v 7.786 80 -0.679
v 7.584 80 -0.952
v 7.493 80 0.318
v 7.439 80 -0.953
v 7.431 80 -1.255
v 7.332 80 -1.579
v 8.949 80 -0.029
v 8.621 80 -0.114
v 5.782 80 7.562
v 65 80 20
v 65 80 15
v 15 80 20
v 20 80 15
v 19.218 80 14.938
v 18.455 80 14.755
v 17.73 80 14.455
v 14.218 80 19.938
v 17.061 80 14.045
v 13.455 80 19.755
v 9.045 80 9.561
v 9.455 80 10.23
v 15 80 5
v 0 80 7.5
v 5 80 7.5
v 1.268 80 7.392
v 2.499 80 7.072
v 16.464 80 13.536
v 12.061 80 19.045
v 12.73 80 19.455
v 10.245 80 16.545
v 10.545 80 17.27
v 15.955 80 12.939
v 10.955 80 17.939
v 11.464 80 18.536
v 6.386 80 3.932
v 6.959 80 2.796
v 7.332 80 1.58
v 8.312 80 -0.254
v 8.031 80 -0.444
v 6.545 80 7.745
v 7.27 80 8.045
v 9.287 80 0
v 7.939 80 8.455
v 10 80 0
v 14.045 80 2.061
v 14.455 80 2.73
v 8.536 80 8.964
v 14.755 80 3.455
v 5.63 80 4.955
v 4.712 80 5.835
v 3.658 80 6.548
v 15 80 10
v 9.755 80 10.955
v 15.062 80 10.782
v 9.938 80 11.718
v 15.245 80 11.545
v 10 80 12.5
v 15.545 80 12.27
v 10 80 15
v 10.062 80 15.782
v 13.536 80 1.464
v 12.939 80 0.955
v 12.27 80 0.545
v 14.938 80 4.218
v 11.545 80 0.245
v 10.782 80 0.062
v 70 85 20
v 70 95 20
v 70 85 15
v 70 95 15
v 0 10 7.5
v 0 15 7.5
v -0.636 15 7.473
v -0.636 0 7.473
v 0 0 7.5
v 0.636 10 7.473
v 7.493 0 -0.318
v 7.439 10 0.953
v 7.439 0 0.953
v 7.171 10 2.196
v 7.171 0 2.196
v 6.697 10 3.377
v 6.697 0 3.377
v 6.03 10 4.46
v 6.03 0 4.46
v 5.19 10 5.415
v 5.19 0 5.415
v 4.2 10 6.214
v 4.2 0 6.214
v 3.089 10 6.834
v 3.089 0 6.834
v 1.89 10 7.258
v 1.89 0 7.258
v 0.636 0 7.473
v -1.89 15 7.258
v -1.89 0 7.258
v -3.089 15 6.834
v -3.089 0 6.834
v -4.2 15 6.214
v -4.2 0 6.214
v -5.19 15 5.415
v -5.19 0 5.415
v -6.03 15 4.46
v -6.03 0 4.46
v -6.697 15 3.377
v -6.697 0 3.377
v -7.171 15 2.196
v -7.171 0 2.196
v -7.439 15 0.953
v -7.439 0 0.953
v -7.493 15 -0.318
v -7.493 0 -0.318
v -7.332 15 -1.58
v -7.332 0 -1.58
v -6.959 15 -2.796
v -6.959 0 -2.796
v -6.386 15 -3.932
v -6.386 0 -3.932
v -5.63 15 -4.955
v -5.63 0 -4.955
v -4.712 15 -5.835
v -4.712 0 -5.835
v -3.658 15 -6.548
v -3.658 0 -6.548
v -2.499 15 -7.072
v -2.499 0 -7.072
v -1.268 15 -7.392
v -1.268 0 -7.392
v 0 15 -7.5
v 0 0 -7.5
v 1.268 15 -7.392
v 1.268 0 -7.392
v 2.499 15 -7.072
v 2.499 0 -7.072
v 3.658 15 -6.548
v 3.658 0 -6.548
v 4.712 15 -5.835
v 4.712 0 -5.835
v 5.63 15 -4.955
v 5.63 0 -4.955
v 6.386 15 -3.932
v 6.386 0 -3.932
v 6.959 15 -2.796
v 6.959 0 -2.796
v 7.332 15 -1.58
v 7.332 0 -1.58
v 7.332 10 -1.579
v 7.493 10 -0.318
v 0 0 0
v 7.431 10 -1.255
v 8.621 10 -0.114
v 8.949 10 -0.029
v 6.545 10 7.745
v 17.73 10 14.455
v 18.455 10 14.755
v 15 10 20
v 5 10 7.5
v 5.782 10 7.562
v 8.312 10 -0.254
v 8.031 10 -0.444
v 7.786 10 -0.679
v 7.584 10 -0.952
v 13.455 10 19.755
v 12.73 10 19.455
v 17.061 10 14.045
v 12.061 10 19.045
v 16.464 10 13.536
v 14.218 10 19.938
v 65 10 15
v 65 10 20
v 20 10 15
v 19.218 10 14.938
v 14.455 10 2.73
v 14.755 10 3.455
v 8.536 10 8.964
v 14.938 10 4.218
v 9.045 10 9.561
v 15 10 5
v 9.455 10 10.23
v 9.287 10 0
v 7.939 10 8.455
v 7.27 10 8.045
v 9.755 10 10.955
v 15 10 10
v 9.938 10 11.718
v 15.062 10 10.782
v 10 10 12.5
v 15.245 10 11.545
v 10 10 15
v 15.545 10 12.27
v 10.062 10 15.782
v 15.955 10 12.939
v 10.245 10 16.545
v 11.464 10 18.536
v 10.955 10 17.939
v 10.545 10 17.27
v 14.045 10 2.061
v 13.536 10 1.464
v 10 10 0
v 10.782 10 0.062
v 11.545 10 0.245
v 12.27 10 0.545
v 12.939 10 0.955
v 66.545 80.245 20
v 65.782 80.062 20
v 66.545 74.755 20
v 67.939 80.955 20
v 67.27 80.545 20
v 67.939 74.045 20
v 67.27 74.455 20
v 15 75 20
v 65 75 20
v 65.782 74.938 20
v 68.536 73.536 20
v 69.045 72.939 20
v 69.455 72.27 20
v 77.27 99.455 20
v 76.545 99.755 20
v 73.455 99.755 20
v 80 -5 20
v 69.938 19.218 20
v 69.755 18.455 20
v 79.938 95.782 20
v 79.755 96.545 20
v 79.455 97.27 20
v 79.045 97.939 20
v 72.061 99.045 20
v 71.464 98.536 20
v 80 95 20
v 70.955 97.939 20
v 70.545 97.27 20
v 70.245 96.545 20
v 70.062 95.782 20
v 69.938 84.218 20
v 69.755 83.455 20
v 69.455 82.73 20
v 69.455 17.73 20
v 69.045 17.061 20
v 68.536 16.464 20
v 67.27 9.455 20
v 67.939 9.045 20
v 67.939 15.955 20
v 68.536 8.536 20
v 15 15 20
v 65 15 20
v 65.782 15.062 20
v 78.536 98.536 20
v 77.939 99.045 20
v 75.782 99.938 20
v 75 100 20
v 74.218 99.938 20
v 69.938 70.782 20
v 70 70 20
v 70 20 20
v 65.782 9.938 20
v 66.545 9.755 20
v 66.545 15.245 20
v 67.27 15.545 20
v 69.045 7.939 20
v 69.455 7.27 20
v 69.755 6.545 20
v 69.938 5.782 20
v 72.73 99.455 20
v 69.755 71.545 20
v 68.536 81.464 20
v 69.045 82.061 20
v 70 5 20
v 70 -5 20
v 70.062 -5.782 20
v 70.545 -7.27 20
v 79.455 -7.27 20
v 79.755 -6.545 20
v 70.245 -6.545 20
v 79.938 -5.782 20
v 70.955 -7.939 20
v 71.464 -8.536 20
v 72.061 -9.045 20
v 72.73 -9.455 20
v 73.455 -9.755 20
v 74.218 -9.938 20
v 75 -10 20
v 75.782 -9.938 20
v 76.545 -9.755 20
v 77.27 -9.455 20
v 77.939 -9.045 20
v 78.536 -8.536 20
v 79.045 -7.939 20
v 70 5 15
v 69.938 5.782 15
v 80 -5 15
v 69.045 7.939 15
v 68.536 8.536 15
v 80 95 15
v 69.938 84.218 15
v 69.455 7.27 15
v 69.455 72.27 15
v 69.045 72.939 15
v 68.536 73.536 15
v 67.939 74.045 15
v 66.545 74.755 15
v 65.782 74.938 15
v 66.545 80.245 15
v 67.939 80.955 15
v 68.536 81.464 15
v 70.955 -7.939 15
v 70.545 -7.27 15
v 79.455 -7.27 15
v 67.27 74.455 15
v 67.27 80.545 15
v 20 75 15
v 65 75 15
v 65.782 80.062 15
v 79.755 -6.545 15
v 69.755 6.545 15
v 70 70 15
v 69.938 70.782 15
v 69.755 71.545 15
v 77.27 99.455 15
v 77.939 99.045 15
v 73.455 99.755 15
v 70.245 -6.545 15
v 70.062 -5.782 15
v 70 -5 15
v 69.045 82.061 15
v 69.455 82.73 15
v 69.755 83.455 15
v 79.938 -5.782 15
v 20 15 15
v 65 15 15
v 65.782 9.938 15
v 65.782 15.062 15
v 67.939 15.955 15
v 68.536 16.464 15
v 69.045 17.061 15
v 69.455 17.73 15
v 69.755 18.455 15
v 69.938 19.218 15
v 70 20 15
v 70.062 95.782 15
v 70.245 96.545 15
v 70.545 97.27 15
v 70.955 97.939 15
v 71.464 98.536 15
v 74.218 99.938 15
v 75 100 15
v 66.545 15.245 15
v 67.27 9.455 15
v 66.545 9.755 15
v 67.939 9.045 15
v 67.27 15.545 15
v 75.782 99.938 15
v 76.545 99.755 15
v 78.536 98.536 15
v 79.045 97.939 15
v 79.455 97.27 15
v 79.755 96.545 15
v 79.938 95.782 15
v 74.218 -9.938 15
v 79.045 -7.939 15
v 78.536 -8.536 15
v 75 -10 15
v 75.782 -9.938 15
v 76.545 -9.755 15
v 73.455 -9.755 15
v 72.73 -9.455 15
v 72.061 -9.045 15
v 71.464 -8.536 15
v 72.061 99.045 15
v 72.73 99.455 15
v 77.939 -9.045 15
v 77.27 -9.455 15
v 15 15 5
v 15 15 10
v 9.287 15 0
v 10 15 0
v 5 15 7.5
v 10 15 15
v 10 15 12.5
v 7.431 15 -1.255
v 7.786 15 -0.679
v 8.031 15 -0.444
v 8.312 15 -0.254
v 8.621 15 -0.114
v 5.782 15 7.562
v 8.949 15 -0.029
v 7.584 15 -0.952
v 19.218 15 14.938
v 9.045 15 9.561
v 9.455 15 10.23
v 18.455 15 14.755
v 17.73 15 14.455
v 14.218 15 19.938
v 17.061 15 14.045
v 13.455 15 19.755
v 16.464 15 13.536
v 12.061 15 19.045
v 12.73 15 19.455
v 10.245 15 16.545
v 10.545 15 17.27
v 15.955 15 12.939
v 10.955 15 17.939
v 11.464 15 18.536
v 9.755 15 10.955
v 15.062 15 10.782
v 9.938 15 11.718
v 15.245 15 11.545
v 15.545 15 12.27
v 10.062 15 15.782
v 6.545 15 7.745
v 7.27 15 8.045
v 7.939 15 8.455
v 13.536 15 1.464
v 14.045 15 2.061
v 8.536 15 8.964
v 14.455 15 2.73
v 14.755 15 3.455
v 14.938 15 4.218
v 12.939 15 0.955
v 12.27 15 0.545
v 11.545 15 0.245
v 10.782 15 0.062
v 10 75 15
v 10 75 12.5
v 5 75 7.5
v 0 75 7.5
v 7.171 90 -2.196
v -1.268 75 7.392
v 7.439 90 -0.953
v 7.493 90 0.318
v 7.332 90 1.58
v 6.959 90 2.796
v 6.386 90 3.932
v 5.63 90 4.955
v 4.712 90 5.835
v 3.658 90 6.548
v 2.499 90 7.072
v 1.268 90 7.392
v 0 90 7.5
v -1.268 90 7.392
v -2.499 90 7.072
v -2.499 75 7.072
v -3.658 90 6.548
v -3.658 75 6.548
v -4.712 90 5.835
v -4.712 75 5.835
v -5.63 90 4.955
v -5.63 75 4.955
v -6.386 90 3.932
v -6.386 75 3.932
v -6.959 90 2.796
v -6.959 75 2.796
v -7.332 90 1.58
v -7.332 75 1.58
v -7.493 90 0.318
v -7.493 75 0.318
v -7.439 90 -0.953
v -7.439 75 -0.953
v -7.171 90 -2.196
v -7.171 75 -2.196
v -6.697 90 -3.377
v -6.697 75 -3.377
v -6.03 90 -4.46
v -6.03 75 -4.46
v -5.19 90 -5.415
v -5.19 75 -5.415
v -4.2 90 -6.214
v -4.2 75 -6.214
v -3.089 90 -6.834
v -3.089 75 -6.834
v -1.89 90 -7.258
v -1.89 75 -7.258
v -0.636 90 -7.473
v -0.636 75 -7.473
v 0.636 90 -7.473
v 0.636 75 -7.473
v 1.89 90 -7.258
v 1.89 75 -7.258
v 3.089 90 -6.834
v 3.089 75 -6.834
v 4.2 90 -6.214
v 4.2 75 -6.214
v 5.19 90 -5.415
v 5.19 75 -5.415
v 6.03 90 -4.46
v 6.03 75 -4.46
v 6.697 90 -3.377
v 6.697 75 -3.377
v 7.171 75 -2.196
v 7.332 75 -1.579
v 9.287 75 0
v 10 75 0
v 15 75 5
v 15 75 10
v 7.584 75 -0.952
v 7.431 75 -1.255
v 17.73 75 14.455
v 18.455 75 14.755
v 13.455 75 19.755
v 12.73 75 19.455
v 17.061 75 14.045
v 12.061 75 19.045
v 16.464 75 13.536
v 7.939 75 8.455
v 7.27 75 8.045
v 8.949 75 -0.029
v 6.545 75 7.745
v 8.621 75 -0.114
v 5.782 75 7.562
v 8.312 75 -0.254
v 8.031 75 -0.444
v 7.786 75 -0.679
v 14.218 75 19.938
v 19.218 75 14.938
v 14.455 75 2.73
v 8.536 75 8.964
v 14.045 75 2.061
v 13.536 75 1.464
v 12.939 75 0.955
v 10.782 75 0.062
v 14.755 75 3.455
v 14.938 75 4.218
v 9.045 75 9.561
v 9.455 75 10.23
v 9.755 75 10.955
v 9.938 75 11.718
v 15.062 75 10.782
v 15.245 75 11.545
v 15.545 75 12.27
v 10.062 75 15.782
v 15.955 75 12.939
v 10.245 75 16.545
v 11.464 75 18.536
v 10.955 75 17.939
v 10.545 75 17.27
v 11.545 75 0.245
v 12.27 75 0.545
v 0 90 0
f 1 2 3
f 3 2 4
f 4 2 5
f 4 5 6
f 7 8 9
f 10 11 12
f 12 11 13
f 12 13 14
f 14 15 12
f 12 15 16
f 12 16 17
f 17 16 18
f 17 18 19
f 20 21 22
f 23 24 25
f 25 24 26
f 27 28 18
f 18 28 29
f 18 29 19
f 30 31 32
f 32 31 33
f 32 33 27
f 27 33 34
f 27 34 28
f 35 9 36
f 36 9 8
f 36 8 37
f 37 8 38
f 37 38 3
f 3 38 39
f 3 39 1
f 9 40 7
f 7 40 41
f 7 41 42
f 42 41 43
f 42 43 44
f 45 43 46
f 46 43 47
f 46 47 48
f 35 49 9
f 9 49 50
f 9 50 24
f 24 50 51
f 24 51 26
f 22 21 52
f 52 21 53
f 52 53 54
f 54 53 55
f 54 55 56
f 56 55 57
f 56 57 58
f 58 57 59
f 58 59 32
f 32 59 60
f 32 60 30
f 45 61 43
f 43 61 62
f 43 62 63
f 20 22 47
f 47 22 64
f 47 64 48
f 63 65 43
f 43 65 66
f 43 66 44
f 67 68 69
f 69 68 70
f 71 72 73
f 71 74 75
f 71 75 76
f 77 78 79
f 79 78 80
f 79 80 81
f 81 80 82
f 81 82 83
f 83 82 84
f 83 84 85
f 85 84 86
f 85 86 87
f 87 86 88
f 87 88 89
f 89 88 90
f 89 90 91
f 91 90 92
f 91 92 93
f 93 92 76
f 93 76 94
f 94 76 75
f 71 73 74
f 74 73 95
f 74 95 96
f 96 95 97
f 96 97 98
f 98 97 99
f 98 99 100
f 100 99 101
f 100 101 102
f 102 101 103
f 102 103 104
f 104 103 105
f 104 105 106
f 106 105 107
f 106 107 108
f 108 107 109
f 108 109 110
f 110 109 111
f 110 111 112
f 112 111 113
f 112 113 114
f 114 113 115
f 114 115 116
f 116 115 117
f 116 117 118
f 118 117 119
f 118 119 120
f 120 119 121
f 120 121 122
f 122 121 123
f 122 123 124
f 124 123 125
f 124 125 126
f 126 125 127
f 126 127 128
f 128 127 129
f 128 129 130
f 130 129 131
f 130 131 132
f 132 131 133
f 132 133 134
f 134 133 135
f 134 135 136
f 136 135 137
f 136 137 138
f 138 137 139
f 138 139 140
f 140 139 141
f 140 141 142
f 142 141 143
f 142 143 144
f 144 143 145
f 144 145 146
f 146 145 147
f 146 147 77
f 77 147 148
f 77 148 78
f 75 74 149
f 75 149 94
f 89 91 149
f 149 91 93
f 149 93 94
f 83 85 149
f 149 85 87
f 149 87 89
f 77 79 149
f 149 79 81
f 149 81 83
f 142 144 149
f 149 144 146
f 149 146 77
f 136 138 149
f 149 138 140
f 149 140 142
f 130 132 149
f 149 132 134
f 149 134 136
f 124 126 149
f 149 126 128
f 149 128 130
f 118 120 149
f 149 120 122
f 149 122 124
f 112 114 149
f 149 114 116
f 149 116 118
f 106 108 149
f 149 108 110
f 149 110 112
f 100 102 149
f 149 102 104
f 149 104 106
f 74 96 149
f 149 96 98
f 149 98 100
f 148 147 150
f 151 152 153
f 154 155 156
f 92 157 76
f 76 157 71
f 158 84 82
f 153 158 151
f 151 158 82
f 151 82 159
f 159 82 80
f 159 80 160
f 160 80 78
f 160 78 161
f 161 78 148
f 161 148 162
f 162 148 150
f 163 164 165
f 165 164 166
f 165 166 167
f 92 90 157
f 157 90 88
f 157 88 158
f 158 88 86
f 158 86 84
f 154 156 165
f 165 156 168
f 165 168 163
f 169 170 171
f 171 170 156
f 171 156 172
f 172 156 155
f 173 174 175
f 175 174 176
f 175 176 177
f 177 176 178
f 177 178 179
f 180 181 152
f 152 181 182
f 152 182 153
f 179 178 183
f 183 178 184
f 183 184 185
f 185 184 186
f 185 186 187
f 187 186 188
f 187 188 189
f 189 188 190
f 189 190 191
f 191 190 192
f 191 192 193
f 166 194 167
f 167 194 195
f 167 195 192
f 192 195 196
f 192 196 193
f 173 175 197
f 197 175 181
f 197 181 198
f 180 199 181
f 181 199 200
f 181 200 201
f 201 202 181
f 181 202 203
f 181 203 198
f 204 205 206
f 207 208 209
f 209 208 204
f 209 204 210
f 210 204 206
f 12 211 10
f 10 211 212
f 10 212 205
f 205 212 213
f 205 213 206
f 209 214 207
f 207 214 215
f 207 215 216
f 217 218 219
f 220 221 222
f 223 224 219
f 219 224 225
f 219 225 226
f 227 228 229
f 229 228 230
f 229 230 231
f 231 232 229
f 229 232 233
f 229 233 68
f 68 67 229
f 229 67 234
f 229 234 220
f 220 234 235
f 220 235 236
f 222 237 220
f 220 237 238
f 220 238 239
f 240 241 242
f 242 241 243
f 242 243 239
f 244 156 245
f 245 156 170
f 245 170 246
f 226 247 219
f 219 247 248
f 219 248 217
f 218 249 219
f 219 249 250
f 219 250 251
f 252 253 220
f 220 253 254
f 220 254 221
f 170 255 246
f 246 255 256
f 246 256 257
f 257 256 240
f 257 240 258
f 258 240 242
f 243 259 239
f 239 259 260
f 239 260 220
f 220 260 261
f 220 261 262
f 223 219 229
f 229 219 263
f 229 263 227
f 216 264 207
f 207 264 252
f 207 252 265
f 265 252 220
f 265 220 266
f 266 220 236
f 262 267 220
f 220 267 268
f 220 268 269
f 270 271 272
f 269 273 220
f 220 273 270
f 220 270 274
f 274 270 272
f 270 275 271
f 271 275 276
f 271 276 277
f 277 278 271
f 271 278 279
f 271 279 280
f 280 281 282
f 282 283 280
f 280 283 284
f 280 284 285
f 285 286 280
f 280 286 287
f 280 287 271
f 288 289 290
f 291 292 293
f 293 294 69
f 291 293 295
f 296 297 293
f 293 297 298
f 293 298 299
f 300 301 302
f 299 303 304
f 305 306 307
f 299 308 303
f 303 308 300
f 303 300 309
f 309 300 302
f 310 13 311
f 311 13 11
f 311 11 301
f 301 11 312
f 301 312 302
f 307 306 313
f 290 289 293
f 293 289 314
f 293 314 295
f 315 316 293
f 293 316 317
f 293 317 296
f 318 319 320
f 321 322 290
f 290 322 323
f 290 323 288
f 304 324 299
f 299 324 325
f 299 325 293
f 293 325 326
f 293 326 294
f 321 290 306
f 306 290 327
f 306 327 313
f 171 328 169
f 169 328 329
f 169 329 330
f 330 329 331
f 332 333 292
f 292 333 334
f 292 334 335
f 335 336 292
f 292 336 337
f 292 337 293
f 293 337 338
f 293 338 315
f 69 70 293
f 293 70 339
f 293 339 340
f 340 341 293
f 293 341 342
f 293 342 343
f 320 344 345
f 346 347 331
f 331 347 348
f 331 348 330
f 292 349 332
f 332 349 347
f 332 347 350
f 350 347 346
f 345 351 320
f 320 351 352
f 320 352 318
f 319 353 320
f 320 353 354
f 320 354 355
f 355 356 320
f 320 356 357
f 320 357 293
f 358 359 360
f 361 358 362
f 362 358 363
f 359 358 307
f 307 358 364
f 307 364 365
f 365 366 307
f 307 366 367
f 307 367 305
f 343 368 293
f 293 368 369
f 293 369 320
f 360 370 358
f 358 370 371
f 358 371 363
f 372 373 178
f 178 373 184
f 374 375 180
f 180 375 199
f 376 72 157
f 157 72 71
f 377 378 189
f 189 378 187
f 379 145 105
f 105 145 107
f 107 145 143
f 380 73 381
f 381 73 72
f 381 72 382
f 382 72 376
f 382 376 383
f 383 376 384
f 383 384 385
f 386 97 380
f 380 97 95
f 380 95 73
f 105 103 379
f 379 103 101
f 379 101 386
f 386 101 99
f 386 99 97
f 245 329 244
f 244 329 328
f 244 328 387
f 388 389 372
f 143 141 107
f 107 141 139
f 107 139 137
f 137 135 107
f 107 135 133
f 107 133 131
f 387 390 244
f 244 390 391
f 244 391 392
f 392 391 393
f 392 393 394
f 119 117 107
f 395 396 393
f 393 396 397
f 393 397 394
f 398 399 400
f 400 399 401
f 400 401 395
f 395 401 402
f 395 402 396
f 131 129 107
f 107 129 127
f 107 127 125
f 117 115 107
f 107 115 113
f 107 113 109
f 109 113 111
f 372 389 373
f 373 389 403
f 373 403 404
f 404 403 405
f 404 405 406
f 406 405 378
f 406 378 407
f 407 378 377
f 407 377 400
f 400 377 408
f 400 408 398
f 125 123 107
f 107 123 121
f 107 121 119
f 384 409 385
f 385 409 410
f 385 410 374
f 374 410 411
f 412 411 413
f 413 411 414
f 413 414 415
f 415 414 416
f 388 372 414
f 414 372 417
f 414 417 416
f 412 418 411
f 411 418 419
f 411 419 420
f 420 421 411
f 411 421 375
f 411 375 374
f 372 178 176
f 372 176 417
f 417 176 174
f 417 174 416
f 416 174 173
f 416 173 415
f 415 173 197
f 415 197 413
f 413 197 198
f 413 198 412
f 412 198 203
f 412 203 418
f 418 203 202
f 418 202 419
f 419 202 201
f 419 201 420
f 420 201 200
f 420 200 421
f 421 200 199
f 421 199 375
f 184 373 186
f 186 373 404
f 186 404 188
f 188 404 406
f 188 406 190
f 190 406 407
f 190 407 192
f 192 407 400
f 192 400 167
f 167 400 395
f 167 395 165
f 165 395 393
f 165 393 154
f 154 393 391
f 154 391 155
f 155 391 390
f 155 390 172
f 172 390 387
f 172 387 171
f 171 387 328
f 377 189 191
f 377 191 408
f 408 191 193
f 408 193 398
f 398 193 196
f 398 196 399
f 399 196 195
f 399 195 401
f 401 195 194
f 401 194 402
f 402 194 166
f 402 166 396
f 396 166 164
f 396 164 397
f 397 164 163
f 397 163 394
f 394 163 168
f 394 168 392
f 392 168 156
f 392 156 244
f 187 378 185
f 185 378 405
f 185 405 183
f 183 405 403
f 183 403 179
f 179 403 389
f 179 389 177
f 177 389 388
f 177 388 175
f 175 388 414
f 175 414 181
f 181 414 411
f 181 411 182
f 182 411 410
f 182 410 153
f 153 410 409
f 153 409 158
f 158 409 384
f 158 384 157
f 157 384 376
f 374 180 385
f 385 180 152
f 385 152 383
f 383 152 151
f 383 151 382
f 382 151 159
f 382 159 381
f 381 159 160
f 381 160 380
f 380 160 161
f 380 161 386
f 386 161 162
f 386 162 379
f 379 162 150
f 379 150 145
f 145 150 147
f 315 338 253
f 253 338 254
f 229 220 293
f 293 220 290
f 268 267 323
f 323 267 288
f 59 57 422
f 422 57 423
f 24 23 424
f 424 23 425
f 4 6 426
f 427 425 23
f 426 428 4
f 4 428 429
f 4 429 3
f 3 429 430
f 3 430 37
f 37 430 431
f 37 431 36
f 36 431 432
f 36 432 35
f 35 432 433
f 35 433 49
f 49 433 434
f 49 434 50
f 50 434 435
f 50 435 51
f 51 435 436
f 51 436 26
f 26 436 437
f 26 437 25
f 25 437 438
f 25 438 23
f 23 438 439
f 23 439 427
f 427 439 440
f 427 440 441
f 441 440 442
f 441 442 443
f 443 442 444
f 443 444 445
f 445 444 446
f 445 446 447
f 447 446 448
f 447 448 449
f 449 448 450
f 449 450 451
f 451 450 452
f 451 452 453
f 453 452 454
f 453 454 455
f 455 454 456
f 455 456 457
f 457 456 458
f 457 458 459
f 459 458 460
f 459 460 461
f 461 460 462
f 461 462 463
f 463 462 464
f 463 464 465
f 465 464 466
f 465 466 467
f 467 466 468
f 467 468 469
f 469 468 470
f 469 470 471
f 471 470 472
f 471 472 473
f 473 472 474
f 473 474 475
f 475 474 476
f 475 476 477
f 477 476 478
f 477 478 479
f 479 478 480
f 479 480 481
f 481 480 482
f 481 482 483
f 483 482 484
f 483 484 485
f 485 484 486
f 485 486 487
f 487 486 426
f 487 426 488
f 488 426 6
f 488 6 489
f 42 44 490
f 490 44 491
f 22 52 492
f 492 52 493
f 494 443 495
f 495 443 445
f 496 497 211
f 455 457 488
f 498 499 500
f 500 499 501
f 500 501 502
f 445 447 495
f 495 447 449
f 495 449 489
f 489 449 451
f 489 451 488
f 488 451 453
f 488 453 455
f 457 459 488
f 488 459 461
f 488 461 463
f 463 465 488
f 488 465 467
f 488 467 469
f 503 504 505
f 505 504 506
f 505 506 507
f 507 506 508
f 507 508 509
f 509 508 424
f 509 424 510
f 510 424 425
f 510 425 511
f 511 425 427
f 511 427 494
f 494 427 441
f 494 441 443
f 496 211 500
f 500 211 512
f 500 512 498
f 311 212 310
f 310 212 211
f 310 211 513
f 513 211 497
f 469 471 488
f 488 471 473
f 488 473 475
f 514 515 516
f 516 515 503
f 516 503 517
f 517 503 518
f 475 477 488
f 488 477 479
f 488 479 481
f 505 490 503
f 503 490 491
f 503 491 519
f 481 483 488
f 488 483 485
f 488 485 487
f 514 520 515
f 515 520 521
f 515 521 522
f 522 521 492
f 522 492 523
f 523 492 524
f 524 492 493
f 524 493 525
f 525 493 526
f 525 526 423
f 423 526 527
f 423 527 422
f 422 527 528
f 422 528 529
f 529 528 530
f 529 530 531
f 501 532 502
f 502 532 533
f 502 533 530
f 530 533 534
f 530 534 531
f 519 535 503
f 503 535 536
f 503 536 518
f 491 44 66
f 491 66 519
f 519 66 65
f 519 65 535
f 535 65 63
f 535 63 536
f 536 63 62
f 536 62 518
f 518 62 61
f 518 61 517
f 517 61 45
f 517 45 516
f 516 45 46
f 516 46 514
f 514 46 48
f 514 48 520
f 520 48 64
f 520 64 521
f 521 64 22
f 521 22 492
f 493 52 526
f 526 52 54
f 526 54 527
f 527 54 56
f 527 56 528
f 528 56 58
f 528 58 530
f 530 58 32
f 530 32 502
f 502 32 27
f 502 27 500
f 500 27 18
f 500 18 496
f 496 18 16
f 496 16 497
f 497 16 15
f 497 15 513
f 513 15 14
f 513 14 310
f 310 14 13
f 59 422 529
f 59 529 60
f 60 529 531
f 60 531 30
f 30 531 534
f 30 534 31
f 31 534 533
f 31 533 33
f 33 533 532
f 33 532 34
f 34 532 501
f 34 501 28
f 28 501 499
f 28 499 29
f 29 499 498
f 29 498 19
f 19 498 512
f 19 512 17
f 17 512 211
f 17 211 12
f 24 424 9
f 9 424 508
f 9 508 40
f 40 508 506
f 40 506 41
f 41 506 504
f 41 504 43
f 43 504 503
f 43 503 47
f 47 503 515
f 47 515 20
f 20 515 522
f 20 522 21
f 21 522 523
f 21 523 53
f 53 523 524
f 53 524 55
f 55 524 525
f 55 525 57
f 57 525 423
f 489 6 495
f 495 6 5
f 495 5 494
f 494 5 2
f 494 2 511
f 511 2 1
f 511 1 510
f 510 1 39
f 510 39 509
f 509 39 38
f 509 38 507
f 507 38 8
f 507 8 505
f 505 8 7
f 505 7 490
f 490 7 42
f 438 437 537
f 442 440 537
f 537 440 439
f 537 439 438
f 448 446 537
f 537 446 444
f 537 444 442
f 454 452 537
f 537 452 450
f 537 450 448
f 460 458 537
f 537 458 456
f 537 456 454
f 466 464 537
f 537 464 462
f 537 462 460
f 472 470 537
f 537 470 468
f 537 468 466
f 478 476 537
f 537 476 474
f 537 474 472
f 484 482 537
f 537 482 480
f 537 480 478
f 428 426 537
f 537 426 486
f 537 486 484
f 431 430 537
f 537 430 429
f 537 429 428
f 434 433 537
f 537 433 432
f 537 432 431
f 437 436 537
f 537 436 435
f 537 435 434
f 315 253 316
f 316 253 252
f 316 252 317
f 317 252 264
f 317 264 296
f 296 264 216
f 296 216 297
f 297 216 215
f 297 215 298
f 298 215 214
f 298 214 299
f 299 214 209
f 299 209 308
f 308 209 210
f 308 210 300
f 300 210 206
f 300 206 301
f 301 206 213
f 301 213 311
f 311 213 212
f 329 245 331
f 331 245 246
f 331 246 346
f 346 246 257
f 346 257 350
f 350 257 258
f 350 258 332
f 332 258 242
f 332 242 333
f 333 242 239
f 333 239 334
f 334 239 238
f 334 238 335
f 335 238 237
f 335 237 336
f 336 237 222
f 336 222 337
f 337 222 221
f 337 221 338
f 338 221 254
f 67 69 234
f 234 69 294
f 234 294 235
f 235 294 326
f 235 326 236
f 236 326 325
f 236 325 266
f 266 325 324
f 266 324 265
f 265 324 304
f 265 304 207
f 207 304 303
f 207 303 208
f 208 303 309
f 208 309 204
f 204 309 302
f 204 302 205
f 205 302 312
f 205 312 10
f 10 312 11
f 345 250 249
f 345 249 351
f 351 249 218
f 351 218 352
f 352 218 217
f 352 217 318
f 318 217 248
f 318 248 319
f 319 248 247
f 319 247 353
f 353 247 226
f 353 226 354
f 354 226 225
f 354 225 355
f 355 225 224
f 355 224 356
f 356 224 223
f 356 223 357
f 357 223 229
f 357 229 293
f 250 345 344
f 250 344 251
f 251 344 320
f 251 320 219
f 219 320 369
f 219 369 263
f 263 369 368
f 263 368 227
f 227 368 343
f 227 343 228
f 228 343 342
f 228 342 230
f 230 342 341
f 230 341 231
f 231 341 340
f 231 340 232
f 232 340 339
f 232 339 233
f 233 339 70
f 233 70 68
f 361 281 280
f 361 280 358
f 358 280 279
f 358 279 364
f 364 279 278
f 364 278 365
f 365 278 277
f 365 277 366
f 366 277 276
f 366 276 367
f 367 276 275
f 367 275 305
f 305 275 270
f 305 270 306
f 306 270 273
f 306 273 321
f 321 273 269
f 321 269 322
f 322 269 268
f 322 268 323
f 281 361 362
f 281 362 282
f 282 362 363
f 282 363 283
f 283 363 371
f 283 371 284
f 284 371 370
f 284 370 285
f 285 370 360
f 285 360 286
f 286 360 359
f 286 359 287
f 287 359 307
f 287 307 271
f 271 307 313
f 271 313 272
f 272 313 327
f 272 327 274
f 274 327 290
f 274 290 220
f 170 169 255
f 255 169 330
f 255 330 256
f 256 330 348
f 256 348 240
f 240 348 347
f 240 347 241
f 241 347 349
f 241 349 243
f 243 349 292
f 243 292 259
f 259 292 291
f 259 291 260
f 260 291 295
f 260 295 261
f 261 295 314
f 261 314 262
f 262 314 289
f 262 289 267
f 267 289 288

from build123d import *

# Parameters (mm, degrees)
ESQUISSE2_R        = 7.5
BOSS_EXTRU_1_DEPTH = 10
BOSS_EXTRU_2_DEPTH = 5
CONG_2_R           = 5
CONG_3_R           = 2
ESQUISSE4_W        = 5
ESQUISSE4_H        = 110
BOSS_EXTRU_3_DEPTH = 10
SYM_TRIE3_START    = 75
SYM_TRIE3_DEPTH    = 5
ESQUISSE5_R        = 7.5
BOSS_EXTRU_4_DEPTH = 10
CONG_4_START       = -1.578947368
CONG_4_DEPTH       = 22.578947368
CONG_4_START_2     = 15
CONG_4_2_DEPTH     = 5


with BuildPart() as part:
    # Esquisse2 → Boss.-Extru.1 (new body)
    with BuildSketch(Plane(origin=(0, 0, 0), x_dir=(1, 0, 0), z_dir=(0, 1, 0))):
        with Locations(Location((0, 0, 0), (0, 0, 270))):
            Circle(ESQUISSE2_R)
    extrude(amount=BOSS_EXTRU_1_DEPTH)

    # Esquisse3 → Boss.-Extru.2 (add)
    with BuildSketch(Plane(origin=(0, 10, 0), x_dir=(1, 0, 0), z_dir=(0, 1, 0))):
        with BuildLine():
            Line((15, 0), (15, -15))
            Line((15, -15), (70, -15))
            Line((70, -15), (70, -20))
            Line((70, -20), (10, -20))
            Line((10, -20), (10, -7.5))
            Line((10, -7.5), (0, -7.5))
            ThreePointArc((0, -7.5), (-5.303300859, 5.303300859), (7.5, 0))
            Line((7.5, 0), (15, 0))
        make_face()
    extrude(amount=BOSS_EXTRU_2_DEPTH)

    # Congé2
    cong_2_edges = [part.edges().sort_by_distance(p)[0] for p in [
        (10, 12.5, 20),
        (15, 12.5, 15),
        (15, 12.5, 0),
        (10, 12.5, 7.5),
    ]]
    fillet(cong_2_edges, radius=CONG_2_R)

    # Congé3
    cong_3_edges = [part.edges().sort_by_distance(p)[0] for p in [
        (7.5, 12.5, 0),
    ]]
    fillet(cong_3_edges, radius=CONG_3_R)

    # Esquisse4 → Boss.-Extru.3 (add)
    with BuildSketch(Plane(origin=(70, 0, 0), x_dir=(0, 0, -1), z_dir=(1, 0, 0))):
        with Locations((-17.5, 45)):
            Rectangle(ESQUISSE4_W, ESQUISSE4_H)
    extrude(amount=BOSS_EXTRU_3_DEPTH)

    # Symétrie3: read off the stored shape, not the designer's step
    # Symétrie3 outline → Symétrie3 (add)
    with BuildSketch(Plane(origin=(0, 0, 0), x_dir=(1, 0, 0), z_dir=(0, 1, 0)).offset(SYM_TRIE3_START)):
        with BuildLine():
            ThreePointArc((9.287087811, 0), (8.030526086, 0.44402679), (7.331911429, 1.578947368))
            ThreePointArc((7.331911429, 1.578947368), (-5.834899539, 4.712106468), (0, -7.5))
            Line((0, -7.5), (5, -7.5))
            ThreePointArc((5, -7.5), (8.535533906, -8.964466094), (10, -12.5))
            Line((10, -12.5), (10, -15))
            ThreePointArc((10, -15), (11.464466094, -18.535533906), (15, -20))
            Line((15, -20), (70, -20))
            Line((70, -20), (70, -15))
            Line((70, -15), (20, -15))
            ThreePointArc((20, -15), (16.464466094, -13.535533906), (15, -10))
            Line((15, -10), (15, -5))
            ThreePointArc((15, -5), (13.535533906, -1.464466094), (10, 0))
            Line((10, 0), (9.287087811, 0))
        make_face()
    extrude(amount=SYM_TRIE3_DEPTH)

    # Esquisse5 → Boss.-Extru.4 (add)
    with BuildSketch(Plane(origin=(0, 80, 0), x_dir=(1, 0, 0), z_dir=(0, 1, 0))):
        with Locations(Location((0, 0, 0), (0, 0, 270))):
            Circle(ESQUISSE5_R)
    extrude(amount=BOSS_EXTRU_4_DEPTH)

    # Congé4: read off the stored shape, not the designer's step
    # Congé4 outline → Congé4 (cut)
    with BuildSketch(Plane.XY.offset(CONG_4_START)):
        with BuildLine():
            Line((70, -10), (75, -10))
            ThreePointArc((75, -10), (71.464466094, -8.535533906), (70, -5))
            Line((70, -5), (70, -10))
        make_face()
        with BuildLine():
            Line((80, -10), (80, -5))
            ThreePointArc((80, -5), (78.535533906, -8.535533906), (75, -10))
            Line((75, -10), (80, -10))
        make_face()
        with BuildLine():
            Line((80, 100), (75, 100))
            ThreePointArc((75, 100), (78.535533906, 98.535533906), (80, 95))
            Line((80, 95), (80, 100))
        make_face()
        with BuildLine():
            Line((70, 100), (70, 95))
            ThreePointArc((70, 95), (71.464466094, 98.535533906), (75, 100))
            Line((75, 100), (70, 100))
        make_face()
    extrude(amount=CONG_4_DEPTH, mode=Mode.SUBTRACT)

    # Cong_4 2 outline → Cong_4 2 (add)
    with BuildSketch(Plane.XY.offset(CONG_4_START_2)):
        with BuildLine():
            Line((70, 15), (70, 20))
            ThreePointArc((70, 20), (68.535533906, 16.464466094), (65, 15))
            Line((65, 15), (70, 15))
        make_face()
        with BuildLine():
            ThreePointArc((65, 75), (68.535533906, 73.535533906), (70, 70))
            Line((70, 70), (70, 75))
            Line((70, 75), (65, 75))
        make_face()
        with BuildLine():
            Line((70, 80), (70, 85))
            ThreePointArc((70, 85), (68.535533906, 81.464466094), (65, 80))
            Line((65, 80), (70, 80))
        make_face()
        with BuildLine():
            ThreePointArc((65, 10), (68.535533906, 8.535533906), (70, 5))
            Line((70, 5), (70, 10))
            Line((70, 10), (65, 10))
        make_face()
    extrude(amount=CONG_4_2_DEPTH)


solid = part.part
